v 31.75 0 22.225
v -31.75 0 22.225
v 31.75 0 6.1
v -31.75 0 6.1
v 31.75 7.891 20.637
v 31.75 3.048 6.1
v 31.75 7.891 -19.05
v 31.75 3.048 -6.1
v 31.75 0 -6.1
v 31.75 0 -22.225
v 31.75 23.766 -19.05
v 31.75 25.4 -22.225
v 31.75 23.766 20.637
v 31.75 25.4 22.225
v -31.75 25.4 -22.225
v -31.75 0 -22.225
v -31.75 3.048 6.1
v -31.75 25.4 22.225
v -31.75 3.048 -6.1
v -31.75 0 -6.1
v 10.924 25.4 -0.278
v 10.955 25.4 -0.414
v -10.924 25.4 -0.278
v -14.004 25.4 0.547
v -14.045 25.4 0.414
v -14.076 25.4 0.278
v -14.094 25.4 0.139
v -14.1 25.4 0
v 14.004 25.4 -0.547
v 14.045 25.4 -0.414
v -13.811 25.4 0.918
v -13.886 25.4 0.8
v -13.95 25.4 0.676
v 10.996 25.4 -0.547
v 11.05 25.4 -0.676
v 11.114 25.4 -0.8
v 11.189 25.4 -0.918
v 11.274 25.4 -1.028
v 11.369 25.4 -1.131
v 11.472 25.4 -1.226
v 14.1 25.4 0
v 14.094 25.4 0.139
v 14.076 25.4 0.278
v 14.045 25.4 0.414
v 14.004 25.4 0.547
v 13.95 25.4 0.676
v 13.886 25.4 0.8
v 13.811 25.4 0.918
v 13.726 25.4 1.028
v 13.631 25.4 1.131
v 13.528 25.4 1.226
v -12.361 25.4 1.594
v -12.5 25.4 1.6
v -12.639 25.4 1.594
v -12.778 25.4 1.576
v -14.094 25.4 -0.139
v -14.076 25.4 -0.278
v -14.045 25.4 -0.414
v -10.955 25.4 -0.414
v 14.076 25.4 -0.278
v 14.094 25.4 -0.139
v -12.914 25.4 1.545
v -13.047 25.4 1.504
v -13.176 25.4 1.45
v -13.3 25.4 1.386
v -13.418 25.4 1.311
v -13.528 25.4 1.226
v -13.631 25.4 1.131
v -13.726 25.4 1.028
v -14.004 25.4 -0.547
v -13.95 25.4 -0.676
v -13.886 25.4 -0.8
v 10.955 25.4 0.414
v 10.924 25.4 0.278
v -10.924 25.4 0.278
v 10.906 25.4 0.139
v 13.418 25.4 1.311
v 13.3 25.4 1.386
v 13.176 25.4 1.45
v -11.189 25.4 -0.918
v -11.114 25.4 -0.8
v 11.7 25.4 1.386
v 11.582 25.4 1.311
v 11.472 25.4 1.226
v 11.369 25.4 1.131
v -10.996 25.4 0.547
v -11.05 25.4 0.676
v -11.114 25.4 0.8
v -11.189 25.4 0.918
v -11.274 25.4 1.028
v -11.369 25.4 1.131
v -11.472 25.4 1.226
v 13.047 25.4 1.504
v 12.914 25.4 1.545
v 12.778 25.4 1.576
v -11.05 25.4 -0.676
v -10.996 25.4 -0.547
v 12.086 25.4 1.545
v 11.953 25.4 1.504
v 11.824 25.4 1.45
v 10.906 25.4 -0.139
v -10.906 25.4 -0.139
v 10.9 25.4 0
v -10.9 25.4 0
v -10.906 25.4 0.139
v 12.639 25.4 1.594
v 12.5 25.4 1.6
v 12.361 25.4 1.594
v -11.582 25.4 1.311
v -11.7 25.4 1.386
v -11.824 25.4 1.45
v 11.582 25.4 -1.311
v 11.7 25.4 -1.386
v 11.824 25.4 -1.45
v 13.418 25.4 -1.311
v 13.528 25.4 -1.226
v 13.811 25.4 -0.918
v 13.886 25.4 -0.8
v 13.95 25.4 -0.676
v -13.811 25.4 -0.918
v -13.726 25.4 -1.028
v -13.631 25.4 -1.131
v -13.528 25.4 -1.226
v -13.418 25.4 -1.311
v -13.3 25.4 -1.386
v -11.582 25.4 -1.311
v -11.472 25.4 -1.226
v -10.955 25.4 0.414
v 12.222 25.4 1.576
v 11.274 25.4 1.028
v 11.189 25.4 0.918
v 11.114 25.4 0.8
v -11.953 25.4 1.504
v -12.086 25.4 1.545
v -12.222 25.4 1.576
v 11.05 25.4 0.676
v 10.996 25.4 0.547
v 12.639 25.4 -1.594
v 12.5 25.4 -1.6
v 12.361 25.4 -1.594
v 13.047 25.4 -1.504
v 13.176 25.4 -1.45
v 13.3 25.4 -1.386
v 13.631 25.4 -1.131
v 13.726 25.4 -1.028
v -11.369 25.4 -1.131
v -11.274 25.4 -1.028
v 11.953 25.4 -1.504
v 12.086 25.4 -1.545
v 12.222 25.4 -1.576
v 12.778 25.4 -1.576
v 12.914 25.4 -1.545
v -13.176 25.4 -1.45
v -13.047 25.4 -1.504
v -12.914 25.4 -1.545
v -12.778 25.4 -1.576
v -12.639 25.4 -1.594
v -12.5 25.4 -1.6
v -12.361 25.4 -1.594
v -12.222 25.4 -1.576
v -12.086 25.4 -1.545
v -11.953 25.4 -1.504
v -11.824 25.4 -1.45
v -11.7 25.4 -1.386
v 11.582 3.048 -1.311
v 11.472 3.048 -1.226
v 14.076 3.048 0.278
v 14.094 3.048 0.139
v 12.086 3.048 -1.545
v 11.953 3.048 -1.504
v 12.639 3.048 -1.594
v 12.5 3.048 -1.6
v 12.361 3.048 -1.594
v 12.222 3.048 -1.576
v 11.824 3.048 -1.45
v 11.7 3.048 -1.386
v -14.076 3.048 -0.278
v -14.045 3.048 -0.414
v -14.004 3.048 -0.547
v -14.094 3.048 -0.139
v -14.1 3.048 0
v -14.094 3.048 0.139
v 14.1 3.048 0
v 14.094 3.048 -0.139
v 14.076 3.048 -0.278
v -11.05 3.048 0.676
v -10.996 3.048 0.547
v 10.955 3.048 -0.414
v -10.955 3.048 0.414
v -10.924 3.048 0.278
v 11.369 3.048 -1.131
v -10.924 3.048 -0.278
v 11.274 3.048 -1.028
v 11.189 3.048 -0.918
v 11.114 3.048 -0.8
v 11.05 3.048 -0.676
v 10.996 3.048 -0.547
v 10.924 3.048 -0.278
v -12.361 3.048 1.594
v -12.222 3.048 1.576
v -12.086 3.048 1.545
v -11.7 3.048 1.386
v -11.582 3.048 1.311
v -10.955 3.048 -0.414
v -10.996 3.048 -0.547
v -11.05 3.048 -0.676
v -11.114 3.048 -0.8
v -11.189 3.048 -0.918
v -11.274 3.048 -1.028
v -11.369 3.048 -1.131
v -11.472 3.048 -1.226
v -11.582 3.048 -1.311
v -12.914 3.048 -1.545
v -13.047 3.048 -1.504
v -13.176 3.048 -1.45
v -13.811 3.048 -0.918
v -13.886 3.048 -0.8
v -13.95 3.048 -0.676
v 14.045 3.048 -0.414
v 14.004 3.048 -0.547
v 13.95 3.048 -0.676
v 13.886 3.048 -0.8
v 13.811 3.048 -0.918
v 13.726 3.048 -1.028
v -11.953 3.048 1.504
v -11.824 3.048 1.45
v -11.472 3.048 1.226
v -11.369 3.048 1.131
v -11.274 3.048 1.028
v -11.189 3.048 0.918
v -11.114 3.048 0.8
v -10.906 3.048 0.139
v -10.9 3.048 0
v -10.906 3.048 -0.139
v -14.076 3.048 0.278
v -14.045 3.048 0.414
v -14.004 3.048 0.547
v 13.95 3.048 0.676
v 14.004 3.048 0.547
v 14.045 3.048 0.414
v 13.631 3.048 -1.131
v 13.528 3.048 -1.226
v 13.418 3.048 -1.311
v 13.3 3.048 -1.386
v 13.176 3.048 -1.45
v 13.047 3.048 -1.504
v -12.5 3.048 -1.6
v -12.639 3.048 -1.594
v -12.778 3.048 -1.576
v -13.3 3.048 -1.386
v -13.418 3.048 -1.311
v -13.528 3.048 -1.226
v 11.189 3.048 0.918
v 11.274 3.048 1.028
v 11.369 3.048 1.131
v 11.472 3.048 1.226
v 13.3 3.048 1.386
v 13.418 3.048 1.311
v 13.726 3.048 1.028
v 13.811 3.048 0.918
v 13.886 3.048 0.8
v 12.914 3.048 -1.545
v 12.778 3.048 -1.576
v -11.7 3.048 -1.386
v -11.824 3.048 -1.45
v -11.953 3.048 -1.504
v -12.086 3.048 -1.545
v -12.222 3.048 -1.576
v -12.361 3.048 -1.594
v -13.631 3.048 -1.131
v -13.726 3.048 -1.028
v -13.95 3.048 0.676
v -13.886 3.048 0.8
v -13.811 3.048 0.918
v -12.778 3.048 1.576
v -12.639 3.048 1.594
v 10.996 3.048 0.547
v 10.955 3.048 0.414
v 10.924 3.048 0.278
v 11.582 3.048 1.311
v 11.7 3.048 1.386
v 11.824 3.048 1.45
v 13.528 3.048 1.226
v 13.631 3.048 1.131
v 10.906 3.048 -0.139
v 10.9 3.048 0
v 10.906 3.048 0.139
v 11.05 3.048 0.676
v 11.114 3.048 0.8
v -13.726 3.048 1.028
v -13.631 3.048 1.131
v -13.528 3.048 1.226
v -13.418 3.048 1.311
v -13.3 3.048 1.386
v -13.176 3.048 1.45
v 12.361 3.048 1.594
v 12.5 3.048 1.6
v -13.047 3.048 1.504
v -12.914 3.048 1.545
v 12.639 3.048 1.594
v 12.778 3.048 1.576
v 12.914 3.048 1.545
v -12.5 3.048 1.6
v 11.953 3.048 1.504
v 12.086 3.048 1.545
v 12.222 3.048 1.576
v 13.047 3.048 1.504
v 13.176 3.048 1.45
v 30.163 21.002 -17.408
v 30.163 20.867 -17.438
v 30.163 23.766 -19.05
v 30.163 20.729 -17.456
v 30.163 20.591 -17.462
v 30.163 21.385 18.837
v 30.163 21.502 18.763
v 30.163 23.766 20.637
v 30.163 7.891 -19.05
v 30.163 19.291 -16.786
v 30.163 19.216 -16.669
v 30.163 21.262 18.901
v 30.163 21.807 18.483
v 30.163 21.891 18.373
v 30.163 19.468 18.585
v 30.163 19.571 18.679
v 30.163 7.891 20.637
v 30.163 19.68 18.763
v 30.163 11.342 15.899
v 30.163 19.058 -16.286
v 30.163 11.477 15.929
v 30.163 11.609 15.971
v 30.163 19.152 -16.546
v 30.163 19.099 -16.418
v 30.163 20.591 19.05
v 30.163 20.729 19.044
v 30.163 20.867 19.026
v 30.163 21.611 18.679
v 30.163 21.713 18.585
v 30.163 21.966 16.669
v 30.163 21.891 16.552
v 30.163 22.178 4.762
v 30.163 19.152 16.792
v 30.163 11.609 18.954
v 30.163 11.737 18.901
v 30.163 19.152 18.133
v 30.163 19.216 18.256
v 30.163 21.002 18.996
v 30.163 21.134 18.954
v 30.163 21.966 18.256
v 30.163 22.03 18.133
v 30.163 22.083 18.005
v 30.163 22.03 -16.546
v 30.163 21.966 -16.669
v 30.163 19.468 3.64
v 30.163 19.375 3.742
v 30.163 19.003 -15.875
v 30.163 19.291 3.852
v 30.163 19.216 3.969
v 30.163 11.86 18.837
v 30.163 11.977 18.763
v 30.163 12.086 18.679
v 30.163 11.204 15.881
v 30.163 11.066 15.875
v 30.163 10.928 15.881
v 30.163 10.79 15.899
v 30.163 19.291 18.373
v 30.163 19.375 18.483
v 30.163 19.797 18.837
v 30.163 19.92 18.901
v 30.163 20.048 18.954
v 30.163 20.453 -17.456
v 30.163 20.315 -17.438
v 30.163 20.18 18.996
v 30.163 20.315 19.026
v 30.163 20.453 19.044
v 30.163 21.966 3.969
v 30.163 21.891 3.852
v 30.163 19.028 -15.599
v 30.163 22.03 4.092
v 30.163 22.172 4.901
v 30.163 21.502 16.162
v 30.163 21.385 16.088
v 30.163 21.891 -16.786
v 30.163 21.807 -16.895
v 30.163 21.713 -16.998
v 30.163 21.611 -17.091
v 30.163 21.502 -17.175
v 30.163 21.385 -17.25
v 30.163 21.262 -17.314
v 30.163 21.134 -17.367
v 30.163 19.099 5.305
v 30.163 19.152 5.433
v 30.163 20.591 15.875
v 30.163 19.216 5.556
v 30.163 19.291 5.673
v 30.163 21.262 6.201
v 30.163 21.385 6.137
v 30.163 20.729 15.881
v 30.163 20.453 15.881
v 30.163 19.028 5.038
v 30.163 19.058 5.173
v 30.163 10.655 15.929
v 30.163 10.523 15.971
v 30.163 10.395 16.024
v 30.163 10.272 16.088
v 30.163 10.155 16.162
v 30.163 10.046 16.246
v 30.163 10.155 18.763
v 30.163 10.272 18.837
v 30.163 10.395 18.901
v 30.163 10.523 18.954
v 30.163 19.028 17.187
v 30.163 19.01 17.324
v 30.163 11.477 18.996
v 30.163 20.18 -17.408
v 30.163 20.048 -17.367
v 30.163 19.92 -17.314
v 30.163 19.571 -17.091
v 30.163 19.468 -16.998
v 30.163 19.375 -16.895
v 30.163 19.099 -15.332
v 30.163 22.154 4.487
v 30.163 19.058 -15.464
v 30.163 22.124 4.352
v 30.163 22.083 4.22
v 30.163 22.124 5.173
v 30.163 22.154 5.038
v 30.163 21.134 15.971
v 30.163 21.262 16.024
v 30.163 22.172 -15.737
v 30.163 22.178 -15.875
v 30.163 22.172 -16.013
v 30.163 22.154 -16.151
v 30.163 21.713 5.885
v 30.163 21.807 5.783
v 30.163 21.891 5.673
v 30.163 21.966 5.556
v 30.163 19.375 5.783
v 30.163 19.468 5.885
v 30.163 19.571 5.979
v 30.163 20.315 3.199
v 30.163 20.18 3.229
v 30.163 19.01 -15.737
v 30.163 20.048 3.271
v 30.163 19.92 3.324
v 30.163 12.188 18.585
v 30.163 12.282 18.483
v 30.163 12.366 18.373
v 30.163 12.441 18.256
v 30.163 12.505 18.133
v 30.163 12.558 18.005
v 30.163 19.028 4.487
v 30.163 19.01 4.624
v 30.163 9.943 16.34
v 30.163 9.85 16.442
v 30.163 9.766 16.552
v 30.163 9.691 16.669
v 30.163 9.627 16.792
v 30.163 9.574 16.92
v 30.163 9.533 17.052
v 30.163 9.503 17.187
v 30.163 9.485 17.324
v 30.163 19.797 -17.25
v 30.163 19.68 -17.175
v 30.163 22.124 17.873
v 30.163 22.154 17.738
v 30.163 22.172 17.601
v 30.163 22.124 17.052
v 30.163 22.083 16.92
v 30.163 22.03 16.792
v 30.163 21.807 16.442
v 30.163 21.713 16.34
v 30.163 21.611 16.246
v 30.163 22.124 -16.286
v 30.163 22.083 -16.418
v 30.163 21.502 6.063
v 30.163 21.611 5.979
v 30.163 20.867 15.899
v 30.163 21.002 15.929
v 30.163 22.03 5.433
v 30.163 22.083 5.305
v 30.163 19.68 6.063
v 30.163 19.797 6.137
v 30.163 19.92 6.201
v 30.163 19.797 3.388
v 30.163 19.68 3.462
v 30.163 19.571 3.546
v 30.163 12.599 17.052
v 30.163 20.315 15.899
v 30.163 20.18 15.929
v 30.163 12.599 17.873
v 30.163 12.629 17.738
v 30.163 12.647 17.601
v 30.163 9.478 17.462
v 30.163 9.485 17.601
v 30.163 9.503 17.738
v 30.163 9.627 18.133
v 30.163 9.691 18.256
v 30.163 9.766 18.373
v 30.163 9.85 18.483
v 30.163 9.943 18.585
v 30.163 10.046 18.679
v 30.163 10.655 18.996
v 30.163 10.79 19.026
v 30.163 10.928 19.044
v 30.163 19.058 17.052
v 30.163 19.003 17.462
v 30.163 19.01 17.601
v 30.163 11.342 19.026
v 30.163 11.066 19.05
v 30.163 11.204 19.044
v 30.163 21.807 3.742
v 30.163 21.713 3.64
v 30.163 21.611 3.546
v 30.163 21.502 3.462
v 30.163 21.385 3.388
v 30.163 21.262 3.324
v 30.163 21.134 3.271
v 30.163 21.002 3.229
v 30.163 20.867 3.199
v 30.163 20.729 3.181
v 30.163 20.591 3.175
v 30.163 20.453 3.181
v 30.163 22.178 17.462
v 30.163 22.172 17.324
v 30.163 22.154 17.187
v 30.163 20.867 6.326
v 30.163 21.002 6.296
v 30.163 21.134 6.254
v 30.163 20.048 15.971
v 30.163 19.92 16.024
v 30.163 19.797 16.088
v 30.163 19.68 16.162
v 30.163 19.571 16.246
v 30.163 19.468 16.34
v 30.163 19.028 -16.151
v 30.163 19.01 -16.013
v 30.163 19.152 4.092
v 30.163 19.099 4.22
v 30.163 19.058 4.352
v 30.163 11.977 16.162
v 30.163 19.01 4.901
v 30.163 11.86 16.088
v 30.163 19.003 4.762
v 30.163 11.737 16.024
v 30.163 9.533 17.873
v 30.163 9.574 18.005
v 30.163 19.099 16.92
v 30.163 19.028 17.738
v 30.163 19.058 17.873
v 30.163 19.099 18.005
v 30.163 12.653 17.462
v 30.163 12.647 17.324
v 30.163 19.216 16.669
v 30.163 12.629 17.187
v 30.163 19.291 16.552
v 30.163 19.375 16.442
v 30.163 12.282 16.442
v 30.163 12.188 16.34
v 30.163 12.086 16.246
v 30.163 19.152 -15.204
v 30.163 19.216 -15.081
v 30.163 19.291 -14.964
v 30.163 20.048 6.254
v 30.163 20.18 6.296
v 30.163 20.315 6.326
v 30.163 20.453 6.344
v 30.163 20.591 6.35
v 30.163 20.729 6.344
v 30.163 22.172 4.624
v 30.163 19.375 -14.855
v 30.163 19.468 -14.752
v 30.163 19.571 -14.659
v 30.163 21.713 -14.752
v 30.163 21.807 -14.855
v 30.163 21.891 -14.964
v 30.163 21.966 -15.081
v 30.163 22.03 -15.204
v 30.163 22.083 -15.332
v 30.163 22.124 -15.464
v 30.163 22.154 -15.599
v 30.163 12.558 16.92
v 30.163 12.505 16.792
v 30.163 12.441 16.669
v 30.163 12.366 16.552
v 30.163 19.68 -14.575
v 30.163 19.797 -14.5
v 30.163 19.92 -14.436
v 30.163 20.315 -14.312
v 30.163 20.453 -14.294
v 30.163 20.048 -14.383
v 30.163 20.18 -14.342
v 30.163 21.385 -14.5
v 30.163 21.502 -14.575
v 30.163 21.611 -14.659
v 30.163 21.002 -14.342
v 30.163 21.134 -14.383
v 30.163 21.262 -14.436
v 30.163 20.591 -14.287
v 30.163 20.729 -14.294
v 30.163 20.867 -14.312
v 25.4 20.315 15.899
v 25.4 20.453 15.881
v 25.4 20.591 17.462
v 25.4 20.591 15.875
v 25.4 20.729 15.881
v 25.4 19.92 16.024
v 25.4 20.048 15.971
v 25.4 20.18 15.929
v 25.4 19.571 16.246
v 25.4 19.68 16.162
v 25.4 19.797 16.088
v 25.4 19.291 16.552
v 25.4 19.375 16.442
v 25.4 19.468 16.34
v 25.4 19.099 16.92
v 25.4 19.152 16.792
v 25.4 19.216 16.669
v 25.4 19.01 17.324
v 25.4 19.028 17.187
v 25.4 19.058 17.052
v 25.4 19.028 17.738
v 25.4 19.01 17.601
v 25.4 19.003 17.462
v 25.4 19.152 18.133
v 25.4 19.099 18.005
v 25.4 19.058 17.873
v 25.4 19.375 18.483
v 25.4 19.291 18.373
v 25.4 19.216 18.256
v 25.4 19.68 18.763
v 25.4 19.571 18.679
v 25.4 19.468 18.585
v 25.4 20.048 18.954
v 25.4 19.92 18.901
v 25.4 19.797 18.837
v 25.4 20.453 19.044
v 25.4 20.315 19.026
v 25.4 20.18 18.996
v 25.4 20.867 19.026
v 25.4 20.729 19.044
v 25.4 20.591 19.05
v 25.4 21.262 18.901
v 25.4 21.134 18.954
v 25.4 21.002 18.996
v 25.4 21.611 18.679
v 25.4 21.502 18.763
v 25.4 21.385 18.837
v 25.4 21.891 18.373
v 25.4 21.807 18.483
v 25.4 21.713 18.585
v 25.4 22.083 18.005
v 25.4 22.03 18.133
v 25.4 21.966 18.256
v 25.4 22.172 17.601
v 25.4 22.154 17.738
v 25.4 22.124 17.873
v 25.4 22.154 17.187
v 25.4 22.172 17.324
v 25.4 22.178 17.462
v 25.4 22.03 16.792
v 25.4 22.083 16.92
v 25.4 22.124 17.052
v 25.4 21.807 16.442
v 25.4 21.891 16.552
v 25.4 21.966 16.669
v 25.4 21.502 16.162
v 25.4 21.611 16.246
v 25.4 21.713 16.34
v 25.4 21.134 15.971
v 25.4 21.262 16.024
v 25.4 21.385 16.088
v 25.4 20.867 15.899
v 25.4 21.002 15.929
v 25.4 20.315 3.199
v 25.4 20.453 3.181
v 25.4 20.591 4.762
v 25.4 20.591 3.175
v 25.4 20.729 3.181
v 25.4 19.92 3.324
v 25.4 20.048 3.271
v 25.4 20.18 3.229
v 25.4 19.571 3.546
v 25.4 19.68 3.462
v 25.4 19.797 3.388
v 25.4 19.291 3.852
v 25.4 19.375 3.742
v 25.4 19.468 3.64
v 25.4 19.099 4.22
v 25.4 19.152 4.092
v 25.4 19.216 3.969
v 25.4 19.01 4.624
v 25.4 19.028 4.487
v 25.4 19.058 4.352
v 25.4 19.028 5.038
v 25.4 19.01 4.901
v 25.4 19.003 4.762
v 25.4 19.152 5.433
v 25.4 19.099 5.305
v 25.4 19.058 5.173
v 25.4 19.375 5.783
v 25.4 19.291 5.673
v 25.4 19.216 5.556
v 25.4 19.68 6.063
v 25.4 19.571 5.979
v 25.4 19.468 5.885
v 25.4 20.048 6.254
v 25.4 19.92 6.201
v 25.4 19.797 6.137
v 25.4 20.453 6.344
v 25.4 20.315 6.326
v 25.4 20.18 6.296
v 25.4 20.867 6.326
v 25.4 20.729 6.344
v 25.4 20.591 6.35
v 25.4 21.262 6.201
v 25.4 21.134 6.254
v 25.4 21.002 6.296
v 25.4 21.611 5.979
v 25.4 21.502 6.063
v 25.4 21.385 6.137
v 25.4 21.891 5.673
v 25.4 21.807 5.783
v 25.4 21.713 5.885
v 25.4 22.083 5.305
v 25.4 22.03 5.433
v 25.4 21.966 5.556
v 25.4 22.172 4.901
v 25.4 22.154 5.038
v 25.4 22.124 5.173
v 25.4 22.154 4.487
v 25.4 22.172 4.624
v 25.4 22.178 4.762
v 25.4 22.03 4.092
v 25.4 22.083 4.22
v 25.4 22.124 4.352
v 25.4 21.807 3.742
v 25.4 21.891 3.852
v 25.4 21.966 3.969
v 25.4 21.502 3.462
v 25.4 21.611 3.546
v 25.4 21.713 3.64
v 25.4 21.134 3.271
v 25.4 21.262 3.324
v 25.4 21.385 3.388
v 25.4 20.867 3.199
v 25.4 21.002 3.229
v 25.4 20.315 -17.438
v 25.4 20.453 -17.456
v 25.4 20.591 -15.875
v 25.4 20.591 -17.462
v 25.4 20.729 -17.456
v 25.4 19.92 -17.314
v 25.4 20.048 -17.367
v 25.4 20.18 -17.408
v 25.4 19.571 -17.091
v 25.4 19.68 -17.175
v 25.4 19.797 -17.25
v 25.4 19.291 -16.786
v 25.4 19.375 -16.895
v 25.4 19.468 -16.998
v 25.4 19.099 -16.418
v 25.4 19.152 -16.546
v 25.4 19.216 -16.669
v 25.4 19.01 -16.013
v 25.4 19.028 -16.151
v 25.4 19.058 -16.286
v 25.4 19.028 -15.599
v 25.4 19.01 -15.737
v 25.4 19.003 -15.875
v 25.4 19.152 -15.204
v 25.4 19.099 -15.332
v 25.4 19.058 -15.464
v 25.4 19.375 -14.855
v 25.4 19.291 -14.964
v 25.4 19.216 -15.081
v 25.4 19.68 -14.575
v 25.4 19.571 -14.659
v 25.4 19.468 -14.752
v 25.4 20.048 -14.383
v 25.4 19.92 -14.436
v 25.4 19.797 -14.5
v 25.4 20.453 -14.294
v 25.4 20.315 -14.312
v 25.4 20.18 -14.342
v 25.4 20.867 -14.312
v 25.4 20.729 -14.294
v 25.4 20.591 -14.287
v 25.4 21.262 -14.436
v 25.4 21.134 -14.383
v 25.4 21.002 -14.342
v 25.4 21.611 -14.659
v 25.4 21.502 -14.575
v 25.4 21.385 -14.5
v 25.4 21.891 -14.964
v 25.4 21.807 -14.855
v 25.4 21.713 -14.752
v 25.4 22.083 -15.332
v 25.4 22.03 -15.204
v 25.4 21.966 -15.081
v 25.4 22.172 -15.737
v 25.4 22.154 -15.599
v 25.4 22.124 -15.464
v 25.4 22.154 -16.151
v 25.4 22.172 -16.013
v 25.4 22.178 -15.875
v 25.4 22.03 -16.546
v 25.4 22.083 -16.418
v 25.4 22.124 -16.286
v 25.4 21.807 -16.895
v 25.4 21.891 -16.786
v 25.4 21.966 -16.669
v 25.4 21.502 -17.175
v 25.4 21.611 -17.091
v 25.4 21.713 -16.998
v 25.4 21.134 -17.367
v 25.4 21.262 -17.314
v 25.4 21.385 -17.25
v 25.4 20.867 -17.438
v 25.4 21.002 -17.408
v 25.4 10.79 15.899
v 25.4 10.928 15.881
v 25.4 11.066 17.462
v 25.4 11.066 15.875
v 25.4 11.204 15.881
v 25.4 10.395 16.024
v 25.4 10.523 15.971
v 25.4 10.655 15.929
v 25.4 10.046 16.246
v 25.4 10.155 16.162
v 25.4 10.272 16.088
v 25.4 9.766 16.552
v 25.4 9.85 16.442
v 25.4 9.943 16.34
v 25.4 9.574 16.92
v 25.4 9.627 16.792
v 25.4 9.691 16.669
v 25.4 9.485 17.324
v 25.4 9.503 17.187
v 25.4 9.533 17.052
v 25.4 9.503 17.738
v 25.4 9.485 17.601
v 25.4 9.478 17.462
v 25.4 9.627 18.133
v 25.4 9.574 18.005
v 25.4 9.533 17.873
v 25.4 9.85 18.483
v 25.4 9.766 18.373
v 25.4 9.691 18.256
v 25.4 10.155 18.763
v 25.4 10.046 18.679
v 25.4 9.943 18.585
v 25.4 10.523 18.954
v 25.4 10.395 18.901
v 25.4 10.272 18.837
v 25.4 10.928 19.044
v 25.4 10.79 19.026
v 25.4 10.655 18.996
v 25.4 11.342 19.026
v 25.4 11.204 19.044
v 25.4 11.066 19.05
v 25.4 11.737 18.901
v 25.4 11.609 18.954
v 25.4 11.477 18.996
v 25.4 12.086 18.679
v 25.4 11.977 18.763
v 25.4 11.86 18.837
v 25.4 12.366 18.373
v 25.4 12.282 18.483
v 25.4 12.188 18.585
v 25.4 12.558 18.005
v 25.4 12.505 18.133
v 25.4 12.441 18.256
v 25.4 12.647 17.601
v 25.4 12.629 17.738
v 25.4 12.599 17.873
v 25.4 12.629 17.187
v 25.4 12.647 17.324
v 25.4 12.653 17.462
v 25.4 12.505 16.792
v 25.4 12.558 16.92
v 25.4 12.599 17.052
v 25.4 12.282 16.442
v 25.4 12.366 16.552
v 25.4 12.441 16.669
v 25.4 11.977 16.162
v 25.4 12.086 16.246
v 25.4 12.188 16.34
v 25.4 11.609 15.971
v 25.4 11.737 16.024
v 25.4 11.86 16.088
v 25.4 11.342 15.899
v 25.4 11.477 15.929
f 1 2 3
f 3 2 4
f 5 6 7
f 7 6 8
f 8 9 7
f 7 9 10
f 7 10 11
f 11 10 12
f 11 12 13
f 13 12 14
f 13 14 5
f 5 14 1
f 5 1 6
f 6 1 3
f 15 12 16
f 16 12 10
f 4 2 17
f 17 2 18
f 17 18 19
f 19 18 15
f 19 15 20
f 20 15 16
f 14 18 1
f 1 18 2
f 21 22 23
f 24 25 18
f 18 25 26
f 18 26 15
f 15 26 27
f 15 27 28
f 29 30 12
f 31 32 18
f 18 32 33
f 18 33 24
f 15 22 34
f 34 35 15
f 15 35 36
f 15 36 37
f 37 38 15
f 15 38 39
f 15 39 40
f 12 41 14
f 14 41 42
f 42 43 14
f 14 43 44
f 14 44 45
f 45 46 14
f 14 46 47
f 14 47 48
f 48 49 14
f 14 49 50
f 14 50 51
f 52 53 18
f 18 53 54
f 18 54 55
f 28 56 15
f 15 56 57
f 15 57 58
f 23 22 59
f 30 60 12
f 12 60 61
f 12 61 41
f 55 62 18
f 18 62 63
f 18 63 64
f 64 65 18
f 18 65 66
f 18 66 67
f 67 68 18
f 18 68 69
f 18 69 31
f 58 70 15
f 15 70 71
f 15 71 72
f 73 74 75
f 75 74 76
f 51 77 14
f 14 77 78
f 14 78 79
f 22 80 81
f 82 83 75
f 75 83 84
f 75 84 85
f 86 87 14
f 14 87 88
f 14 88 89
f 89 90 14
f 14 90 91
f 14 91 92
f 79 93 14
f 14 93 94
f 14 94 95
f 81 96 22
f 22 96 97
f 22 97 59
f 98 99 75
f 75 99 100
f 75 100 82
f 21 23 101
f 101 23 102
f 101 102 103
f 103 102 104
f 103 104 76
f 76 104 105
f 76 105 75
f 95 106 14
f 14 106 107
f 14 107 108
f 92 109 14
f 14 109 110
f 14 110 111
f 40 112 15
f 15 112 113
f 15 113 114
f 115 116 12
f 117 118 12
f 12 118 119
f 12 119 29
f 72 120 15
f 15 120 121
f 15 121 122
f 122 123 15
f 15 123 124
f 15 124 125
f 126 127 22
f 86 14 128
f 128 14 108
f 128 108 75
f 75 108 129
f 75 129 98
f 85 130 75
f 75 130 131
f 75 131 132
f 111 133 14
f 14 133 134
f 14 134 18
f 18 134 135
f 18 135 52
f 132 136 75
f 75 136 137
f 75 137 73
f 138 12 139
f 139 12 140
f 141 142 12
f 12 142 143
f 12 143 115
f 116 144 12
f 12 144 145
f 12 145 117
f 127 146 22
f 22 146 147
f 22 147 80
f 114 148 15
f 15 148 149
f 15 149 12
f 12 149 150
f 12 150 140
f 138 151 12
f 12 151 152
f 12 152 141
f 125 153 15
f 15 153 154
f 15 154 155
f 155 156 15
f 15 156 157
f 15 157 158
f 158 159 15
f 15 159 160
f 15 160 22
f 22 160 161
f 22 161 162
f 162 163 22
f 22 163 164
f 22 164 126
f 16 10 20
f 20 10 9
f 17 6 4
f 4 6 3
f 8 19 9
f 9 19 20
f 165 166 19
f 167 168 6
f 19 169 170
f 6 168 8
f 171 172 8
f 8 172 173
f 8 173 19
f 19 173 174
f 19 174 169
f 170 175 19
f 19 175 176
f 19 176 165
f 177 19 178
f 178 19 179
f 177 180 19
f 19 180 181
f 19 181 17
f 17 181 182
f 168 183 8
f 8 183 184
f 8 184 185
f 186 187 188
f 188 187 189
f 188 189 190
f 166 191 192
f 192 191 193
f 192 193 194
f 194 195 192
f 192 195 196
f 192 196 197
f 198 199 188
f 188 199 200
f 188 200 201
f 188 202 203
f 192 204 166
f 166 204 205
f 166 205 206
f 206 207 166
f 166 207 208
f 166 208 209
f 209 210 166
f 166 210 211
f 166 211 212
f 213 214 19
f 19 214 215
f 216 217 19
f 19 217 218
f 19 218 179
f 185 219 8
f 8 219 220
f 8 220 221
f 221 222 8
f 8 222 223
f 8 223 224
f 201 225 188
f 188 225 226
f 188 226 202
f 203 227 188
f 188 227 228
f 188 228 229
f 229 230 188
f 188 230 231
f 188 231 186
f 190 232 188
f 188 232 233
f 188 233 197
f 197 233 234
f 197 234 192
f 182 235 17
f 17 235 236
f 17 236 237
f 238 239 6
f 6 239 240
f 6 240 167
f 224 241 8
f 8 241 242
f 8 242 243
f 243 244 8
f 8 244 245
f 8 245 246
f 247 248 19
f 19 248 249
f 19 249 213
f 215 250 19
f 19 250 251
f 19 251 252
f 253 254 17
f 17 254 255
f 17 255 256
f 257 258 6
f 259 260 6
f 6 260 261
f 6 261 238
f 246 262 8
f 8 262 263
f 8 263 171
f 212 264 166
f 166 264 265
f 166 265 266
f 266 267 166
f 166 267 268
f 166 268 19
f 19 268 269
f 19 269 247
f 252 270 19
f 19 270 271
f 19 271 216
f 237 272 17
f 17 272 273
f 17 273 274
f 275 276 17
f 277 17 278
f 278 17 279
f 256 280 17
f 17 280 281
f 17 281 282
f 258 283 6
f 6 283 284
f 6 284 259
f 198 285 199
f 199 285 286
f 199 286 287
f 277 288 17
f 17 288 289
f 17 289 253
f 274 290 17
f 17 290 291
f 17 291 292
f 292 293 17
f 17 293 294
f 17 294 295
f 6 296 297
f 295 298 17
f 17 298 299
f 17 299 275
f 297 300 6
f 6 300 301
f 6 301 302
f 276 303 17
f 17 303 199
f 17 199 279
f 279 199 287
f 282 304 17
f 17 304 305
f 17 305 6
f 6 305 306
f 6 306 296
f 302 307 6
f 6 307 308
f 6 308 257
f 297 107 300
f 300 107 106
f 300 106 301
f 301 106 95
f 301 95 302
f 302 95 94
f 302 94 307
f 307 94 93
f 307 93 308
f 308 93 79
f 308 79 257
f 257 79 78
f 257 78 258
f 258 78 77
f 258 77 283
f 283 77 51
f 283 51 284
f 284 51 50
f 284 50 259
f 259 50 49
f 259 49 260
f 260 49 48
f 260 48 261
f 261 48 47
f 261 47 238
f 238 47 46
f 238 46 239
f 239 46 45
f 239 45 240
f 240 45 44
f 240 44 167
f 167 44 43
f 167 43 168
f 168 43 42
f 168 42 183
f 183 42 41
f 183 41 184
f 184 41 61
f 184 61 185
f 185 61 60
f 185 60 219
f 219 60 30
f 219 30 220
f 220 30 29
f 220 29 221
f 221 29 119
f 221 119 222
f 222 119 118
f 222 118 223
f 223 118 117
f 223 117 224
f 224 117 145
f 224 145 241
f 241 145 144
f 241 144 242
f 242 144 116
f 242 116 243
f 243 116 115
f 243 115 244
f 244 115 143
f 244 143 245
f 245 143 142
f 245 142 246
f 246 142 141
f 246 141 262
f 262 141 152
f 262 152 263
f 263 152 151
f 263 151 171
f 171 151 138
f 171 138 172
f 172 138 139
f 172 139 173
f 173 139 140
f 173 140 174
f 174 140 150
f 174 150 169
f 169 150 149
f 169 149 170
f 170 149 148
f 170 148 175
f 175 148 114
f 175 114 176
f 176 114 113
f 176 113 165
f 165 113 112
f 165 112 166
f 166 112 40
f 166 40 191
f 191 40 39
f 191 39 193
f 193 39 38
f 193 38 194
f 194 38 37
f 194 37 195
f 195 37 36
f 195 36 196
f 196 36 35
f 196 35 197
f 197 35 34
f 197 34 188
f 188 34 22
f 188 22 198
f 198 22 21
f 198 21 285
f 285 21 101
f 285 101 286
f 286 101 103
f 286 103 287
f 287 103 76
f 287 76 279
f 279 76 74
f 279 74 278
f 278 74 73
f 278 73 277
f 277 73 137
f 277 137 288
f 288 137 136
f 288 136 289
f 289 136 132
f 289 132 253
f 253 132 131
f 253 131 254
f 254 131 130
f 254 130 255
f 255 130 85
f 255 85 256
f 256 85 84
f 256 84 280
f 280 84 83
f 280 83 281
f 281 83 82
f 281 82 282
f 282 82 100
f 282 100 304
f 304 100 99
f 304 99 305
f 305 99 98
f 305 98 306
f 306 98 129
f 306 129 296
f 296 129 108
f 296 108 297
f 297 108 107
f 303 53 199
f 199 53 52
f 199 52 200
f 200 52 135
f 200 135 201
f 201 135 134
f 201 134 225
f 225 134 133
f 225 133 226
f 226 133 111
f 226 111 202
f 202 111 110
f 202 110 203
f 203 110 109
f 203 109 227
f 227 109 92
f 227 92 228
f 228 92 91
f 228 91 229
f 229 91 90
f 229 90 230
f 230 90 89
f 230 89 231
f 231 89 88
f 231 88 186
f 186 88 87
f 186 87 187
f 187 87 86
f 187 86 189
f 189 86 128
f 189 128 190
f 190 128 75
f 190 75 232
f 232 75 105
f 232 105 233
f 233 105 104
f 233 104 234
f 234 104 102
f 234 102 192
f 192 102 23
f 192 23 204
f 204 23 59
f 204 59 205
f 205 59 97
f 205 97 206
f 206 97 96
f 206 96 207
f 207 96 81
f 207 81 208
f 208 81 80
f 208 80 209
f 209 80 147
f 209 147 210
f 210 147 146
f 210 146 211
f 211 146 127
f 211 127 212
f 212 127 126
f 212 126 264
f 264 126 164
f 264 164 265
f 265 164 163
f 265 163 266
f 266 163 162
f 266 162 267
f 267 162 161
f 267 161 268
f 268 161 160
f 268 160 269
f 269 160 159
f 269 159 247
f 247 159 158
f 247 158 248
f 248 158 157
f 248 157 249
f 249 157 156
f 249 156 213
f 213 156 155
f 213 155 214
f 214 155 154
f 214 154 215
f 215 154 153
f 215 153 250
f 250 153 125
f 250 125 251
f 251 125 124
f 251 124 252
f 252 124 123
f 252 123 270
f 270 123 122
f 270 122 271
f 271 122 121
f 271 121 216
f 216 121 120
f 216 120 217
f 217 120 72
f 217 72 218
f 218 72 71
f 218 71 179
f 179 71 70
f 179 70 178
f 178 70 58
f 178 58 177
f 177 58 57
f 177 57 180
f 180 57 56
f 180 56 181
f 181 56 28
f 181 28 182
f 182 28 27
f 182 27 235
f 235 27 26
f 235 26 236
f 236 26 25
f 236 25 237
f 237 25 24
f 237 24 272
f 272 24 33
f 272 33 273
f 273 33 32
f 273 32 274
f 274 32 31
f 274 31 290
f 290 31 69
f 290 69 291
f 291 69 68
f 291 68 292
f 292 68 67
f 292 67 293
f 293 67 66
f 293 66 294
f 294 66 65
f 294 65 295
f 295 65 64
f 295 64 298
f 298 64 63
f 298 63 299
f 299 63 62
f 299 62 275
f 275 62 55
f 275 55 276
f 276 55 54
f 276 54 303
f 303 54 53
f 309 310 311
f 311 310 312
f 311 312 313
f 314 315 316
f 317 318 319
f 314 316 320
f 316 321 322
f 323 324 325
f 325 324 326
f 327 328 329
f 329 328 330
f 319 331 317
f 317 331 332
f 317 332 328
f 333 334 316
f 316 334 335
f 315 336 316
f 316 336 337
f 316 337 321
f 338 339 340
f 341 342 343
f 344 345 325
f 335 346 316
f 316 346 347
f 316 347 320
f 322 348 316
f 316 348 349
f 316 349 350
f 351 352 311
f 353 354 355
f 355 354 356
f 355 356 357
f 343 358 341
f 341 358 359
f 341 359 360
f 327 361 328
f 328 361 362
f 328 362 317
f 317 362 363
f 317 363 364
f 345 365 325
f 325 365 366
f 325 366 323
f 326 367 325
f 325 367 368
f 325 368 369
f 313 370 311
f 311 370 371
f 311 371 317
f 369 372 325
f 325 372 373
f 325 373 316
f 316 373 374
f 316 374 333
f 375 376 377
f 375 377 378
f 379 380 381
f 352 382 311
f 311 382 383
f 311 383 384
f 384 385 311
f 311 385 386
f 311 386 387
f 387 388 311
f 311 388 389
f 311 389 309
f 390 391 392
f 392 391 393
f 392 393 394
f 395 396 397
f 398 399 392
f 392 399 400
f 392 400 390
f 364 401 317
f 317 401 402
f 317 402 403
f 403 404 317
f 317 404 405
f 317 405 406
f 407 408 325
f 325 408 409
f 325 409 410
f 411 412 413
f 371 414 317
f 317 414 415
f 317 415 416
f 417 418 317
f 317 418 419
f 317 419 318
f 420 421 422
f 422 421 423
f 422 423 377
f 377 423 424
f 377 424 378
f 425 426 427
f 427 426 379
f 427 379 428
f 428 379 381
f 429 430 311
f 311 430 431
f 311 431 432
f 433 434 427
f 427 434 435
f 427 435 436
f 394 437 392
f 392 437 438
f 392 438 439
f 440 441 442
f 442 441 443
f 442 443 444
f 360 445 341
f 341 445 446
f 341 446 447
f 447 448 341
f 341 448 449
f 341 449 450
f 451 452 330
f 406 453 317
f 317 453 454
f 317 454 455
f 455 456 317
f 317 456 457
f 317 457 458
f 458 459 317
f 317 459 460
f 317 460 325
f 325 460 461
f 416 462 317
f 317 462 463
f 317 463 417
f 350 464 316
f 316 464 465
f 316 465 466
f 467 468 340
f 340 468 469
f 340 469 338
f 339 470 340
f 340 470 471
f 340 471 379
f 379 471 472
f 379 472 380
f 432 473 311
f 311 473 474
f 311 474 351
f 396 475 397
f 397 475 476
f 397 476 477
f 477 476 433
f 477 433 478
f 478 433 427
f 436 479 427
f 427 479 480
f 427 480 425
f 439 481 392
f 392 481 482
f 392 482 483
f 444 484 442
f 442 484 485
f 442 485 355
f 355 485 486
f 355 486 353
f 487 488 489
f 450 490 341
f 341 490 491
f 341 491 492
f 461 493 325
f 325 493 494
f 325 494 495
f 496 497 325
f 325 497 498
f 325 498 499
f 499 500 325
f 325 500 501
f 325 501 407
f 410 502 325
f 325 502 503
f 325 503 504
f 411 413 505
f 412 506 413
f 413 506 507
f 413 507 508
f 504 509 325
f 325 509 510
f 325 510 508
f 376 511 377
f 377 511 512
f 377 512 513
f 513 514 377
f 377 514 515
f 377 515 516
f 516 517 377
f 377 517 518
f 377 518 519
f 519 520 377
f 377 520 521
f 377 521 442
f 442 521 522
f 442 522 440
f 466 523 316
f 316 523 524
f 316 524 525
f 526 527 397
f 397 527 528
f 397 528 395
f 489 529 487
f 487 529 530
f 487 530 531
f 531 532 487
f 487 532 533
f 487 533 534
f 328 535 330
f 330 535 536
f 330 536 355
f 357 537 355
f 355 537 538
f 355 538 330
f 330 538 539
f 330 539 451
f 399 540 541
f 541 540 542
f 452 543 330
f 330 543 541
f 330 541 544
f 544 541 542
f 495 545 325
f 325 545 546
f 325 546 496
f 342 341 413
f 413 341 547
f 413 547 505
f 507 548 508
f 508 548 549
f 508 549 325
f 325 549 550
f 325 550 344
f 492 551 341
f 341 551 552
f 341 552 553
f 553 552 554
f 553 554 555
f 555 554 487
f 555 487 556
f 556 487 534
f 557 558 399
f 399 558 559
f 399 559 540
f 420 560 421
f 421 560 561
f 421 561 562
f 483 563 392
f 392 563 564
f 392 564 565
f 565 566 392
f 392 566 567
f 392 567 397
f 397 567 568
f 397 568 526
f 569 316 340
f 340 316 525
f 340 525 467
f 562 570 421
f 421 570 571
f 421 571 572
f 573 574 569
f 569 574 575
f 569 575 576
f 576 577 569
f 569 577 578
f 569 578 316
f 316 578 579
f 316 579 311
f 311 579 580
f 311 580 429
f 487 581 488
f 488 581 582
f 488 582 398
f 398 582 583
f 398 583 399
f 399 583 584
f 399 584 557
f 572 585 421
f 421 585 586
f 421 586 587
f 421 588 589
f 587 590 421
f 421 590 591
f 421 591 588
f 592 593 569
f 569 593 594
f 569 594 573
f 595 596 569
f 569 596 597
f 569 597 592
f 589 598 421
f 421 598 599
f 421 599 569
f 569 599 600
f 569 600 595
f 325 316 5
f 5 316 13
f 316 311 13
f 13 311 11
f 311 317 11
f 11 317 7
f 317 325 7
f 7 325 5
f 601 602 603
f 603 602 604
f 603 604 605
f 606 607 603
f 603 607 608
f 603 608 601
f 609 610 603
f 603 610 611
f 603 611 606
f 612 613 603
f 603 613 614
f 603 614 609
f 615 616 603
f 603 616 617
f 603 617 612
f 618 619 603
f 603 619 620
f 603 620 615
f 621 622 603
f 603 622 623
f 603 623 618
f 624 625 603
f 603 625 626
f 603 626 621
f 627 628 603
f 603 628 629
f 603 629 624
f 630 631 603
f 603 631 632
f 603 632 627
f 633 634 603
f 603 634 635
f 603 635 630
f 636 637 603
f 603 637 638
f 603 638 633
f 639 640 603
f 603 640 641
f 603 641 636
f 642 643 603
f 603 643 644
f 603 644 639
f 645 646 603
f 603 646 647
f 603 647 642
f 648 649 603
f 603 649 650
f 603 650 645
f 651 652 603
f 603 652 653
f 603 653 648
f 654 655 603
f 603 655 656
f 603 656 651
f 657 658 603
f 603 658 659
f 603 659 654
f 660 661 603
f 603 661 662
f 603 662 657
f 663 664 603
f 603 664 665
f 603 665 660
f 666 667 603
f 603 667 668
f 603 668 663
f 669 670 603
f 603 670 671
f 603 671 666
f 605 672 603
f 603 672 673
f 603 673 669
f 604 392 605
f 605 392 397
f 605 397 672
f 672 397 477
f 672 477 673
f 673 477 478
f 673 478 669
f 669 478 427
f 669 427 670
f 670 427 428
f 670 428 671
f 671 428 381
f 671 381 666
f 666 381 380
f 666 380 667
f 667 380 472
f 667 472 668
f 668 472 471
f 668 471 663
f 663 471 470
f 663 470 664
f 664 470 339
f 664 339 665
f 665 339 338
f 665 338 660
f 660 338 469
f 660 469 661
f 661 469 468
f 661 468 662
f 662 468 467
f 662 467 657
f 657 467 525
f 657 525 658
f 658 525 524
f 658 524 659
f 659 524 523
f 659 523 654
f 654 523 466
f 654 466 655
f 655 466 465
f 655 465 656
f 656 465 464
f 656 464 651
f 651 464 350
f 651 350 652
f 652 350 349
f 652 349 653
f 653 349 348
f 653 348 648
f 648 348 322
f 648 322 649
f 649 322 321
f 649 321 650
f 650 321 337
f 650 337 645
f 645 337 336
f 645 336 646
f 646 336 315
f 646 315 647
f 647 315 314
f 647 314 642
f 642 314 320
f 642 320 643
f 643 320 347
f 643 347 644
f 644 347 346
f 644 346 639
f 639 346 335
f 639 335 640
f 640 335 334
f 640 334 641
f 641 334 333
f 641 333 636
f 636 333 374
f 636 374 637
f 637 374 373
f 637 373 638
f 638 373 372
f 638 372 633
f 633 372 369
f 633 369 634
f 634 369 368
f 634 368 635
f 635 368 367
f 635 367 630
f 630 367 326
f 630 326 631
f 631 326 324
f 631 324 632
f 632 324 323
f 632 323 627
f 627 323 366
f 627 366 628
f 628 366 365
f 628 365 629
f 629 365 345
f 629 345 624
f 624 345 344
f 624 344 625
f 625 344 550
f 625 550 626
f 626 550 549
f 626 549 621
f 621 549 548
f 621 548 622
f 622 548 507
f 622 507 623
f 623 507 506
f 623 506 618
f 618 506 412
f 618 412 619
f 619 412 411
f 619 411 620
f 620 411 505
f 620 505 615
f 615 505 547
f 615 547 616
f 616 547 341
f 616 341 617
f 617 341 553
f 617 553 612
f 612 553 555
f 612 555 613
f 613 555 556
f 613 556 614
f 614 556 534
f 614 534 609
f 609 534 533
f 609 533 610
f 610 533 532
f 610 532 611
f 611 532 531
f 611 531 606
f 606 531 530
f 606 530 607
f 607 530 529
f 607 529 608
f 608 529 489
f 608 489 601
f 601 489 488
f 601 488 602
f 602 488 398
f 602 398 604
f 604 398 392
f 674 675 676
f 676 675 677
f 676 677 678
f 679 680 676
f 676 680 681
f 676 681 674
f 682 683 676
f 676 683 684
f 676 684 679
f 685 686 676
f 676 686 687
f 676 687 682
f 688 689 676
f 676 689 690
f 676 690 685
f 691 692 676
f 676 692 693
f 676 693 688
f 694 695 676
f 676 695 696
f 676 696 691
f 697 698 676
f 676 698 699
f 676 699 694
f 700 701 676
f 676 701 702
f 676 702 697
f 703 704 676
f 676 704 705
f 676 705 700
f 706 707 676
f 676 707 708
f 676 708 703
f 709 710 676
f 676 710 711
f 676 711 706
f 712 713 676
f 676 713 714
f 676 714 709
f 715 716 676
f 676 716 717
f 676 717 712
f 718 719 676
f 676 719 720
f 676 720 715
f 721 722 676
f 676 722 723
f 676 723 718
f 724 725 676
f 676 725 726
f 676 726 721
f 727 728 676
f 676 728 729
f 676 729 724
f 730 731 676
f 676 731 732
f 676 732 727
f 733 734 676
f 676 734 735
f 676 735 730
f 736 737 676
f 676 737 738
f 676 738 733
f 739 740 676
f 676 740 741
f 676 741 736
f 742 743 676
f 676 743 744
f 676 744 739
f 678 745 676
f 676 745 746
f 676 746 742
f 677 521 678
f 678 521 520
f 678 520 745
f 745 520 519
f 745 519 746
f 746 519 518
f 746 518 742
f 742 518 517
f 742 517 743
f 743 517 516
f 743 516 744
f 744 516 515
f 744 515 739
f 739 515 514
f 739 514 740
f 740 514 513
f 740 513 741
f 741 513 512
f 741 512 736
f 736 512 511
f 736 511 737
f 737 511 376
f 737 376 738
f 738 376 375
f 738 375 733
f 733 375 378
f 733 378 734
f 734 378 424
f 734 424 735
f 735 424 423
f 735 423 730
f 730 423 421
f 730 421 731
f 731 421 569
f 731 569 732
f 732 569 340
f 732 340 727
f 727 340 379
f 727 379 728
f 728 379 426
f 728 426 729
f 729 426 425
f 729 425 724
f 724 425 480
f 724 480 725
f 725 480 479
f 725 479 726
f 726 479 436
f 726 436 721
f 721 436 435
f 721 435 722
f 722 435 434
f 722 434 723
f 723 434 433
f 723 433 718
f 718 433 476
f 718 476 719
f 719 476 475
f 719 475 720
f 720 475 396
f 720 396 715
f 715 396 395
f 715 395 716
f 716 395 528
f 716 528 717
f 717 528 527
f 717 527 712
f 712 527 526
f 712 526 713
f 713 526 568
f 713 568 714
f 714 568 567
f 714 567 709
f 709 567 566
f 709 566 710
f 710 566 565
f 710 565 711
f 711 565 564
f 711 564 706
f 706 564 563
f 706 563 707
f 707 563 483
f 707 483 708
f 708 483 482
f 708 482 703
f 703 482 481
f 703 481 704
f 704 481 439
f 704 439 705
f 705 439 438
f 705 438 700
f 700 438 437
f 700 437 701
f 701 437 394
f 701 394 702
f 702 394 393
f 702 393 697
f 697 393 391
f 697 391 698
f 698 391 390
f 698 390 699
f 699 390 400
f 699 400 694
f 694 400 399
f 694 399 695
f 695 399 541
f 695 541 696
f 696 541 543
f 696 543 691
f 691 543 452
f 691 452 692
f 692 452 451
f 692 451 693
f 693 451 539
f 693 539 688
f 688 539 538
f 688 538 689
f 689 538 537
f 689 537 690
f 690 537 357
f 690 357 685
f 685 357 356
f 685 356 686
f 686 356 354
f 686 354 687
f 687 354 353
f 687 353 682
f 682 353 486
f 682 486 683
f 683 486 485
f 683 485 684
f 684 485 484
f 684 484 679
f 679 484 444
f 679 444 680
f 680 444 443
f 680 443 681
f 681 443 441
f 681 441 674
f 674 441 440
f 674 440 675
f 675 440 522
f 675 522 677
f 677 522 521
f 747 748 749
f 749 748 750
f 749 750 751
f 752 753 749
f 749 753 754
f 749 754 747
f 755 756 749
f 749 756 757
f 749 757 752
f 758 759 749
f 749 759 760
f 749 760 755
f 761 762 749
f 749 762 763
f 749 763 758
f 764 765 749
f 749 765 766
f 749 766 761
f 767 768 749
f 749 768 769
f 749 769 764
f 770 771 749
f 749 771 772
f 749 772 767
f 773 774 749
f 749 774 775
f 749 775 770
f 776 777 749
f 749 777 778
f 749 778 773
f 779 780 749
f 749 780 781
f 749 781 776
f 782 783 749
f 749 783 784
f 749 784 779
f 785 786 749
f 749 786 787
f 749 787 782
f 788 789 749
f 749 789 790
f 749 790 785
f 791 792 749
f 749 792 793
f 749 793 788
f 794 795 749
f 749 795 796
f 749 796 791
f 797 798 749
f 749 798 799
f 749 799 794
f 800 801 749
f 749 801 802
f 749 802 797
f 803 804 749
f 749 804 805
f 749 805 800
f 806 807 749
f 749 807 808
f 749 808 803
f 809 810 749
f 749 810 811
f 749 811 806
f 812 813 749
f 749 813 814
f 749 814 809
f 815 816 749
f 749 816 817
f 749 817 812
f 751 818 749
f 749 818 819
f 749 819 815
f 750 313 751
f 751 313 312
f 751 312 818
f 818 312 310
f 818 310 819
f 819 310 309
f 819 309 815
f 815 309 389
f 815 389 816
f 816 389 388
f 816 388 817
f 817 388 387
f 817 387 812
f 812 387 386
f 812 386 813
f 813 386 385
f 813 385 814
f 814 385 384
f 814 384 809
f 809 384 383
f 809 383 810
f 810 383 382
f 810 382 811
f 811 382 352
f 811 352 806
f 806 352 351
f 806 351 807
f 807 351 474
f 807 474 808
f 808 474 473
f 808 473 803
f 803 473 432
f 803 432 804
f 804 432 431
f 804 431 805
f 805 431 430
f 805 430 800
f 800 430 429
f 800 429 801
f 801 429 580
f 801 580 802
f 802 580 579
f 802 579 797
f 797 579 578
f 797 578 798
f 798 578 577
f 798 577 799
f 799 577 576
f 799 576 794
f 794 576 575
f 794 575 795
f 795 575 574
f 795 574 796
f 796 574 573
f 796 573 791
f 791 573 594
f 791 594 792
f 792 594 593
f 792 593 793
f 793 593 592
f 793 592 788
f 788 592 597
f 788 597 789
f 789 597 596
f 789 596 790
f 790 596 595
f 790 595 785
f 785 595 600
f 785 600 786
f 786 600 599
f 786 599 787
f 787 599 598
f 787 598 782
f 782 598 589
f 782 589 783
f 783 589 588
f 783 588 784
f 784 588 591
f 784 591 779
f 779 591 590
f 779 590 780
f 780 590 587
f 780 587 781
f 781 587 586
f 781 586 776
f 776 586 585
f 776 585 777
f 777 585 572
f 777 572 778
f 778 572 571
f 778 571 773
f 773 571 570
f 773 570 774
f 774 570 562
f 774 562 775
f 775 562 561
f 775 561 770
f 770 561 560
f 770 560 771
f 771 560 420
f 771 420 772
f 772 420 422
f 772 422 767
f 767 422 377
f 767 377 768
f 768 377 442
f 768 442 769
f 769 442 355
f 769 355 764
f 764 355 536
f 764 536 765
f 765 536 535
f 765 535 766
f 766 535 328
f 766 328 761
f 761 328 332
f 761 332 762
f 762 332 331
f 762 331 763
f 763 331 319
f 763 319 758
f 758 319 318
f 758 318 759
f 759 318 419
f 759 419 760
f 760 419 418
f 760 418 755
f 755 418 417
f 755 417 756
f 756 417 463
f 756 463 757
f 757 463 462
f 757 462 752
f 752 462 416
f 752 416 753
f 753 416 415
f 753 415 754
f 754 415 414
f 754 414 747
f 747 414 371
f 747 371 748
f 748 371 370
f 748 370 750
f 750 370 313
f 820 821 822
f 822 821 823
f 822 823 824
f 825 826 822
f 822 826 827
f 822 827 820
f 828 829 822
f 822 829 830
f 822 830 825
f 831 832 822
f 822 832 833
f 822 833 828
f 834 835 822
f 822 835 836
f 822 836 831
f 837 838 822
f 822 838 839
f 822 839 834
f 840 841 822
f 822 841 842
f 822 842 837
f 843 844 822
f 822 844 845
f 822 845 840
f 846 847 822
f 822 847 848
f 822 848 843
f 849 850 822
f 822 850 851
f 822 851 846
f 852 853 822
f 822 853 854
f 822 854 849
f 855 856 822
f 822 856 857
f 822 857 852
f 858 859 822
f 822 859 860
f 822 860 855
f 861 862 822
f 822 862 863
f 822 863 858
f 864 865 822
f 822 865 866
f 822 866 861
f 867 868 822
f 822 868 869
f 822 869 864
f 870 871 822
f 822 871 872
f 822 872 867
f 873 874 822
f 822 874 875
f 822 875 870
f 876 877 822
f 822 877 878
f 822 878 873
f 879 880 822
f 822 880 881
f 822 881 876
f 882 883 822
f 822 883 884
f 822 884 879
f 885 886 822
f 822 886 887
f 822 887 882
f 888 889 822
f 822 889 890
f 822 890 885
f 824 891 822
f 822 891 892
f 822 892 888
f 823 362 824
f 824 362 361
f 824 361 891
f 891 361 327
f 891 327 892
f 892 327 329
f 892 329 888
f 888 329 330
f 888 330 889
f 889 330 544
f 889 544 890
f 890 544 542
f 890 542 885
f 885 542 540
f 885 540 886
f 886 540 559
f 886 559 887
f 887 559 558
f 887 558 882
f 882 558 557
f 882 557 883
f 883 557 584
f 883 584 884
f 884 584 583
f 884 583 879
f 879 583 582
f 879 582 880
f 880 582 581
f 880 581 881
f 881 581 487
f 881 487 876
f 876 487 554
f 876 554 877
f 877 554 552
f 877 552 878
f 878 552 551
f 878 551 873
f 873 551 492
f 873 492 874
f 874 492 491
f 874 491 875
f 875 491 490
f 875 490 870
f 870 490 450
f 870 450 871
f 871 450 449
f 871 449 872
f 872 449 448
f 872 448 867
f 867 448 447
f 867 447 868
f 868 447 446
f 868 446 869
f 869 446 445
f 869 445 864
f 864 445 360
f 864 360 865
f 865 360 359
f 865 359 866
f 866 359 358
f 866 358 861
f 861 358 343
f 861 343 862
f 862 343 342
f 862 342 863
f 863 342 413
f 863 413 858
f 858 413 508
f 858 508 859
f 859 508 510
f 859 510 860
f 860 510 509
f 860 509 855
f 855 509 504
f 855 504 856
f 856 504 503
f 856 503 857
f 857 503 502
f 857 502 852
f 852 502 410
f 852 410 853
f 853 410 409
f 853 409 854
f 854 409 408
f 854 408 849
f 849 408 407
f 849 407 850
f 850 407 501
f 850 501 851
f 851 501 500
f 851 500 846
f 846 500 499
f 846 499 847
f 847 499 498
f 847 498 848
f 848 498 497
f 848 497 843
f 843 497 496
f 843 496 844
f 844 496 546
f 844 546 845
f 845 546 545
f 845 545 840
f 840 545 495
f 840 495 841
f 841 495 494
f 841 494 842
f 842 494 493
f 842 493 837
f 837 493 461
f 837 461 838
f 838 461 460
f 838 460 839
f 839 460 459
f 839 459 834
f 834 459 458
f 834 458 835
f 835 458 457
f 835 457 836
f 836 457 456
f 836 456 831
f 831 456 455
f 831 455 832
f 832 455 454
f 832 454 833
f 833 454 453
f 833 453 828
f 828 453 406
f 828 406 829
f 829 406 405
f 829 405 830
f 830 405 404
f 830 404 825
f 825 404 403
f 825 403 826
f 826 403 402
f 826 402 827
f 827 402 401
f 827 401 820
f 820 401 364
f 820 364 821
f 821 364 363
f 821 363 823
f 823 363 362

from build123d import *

# Parameters (mm, degrees)
SKETCH2_W           = 63.5
SKETCH2_H           = 44.45
BOSS_EXTRUDE1_DEPTH = 25.4
SKETCH3_W           = 63.5
SKETCH3_H           = 12.2
CUT_EXTRUDE1_DEPTH  = 3.048
SKETCH4_R           = 1.6
CUT_EXTRUDE2_DEPTH  = 47.337599474
SKETCH10_R          = 1.5875
CUT_EXTRUDE3_DEPTH  = 6.35
SKETCH8_R           = 1.5875
CUT_EXTRUDE4_DEPTH  = 6.35
SKETCH5_R           = 1.5875
CUT_EXTRUDE5_DEPTH  = 6.35
SKETCH6_R           = 1.5875
CUT_EXTRUDE6_DEPTH  = 6.35
SKETCH11_W          = 39.6875
SKETCH11_H          = 15.875
CUT_EXTRUDE8_DEPTH  = 1.5875


with BuildPart() as part:
    # Sketch2 → Boss-Extrude1 (new body)
    with BuildSketch(Plane(origin=(0, 0, 0), x_dir=(1, 0, 0), z_dir=(0, 1, 0))):
        Rectangle(SKETCH2_W, SKETCH2_H)
    extrude(amount=BOSS_EXTRUDE1_DEPTH)

    # Sketch3 → Cut-Extrude1 (cut)
    with BuildSketch(Plane.XZ):
        Rectangle(SKETCH3_W, SKETCH3_H)
    extrude(amount=-CUT_EXTRUDE1_DEPTH, mode=Mode.SUBTRACT)

    # Sketch4 → Cut-Extrude2 (cut, through all)
    with BuildSketch(Plane(origin=(0, 25.4, 0), x_dir=(1, 0, 0), z_dir=(0, 1, 0))):
        with Locations(Location((-12.5, 0, 0), (0, 0, 270))):
            Circle(SKETCH4_R)
        with Locations(Location((12.5, 0, 0), (0, 0, 270))):
            Circle(SKETCH4_R)
    extrude(amount=-CUT_EXTRUDE2_DEPTH, mode=Mode.SUBTRACT)

    # Sketch10 → Cut-Extrude3 (cut)
    with BuildSketch(Plane(origin=(31.75, 0, 0), x_dir=(0, 0, -1), z_dir=(1, 0, 0))):
        with Locations((15.875, 20.590962003)):
            Circle(SKETCH10_R)
    extrude(amount=-CUT_EXTRUDE3_DEPTH, mode=Mode.SUBTRACT)

    # Sketch8 → Cut-Extrude4 (cut)
    with BuildSketch(Plane(origin=(31.75, 1.540962003, -6.057895699), x_dir=(0, 0, -1), z_dir=(1, 0, 0))):
        with Locations((-10.820395699, 19.05)):
            Circle(SKETCH8_R)
    extrude(amount=-CUT_EXTRUDE4_DEPTH, mode=Mode.SUBTRACT)

    # Sketch5 → Cut-Extrude5 (cut)
    with BuildSketch(Plane(origin=(31.75, 1.540962003, -6.057895699), x_dir=(0, 0, -1), z_dir=(1, 0, 0))):
        with Locations((-23.520395699, 19.05)):
            Circle(SKETCH5_R)
    extrude(amount=-CUT_EXTRUDE5_DEPTH, mode=Mode.SUBTRACT)

    # Sketch6 → Cut-Extrude6 (cut)
    with BuildSketch(Plane(origin=(31.75, 1.540962003, -6.057895699), x_dir=(0, 0, -1), z_dir=(1, 0, 0))):
        with Locations((-23.520395699, 9.525)):
            Circle(SKETCH6_R)
    extrude(amount=-CUT_EXTRUDE6_DEPTH, mode=Mode.SUBTRACT)

    # Sketch11 → Cut-Extrude8 (cut)
    with BuildSketch(Plane(origin=(31.75, 1.540962003, -6.057895699), x_dir=(0, 0, -1), z_dir=(1, 0, 0))):
        with Locations((-6.851645699, 14.2875)):
            Rectangle(SKETCH11_W, SKETCH11_H)
    extrude(amount=-CUT_EXTRUDE8_DEPTH, mode=Mode.SUBTRACT)


solid = part.part
